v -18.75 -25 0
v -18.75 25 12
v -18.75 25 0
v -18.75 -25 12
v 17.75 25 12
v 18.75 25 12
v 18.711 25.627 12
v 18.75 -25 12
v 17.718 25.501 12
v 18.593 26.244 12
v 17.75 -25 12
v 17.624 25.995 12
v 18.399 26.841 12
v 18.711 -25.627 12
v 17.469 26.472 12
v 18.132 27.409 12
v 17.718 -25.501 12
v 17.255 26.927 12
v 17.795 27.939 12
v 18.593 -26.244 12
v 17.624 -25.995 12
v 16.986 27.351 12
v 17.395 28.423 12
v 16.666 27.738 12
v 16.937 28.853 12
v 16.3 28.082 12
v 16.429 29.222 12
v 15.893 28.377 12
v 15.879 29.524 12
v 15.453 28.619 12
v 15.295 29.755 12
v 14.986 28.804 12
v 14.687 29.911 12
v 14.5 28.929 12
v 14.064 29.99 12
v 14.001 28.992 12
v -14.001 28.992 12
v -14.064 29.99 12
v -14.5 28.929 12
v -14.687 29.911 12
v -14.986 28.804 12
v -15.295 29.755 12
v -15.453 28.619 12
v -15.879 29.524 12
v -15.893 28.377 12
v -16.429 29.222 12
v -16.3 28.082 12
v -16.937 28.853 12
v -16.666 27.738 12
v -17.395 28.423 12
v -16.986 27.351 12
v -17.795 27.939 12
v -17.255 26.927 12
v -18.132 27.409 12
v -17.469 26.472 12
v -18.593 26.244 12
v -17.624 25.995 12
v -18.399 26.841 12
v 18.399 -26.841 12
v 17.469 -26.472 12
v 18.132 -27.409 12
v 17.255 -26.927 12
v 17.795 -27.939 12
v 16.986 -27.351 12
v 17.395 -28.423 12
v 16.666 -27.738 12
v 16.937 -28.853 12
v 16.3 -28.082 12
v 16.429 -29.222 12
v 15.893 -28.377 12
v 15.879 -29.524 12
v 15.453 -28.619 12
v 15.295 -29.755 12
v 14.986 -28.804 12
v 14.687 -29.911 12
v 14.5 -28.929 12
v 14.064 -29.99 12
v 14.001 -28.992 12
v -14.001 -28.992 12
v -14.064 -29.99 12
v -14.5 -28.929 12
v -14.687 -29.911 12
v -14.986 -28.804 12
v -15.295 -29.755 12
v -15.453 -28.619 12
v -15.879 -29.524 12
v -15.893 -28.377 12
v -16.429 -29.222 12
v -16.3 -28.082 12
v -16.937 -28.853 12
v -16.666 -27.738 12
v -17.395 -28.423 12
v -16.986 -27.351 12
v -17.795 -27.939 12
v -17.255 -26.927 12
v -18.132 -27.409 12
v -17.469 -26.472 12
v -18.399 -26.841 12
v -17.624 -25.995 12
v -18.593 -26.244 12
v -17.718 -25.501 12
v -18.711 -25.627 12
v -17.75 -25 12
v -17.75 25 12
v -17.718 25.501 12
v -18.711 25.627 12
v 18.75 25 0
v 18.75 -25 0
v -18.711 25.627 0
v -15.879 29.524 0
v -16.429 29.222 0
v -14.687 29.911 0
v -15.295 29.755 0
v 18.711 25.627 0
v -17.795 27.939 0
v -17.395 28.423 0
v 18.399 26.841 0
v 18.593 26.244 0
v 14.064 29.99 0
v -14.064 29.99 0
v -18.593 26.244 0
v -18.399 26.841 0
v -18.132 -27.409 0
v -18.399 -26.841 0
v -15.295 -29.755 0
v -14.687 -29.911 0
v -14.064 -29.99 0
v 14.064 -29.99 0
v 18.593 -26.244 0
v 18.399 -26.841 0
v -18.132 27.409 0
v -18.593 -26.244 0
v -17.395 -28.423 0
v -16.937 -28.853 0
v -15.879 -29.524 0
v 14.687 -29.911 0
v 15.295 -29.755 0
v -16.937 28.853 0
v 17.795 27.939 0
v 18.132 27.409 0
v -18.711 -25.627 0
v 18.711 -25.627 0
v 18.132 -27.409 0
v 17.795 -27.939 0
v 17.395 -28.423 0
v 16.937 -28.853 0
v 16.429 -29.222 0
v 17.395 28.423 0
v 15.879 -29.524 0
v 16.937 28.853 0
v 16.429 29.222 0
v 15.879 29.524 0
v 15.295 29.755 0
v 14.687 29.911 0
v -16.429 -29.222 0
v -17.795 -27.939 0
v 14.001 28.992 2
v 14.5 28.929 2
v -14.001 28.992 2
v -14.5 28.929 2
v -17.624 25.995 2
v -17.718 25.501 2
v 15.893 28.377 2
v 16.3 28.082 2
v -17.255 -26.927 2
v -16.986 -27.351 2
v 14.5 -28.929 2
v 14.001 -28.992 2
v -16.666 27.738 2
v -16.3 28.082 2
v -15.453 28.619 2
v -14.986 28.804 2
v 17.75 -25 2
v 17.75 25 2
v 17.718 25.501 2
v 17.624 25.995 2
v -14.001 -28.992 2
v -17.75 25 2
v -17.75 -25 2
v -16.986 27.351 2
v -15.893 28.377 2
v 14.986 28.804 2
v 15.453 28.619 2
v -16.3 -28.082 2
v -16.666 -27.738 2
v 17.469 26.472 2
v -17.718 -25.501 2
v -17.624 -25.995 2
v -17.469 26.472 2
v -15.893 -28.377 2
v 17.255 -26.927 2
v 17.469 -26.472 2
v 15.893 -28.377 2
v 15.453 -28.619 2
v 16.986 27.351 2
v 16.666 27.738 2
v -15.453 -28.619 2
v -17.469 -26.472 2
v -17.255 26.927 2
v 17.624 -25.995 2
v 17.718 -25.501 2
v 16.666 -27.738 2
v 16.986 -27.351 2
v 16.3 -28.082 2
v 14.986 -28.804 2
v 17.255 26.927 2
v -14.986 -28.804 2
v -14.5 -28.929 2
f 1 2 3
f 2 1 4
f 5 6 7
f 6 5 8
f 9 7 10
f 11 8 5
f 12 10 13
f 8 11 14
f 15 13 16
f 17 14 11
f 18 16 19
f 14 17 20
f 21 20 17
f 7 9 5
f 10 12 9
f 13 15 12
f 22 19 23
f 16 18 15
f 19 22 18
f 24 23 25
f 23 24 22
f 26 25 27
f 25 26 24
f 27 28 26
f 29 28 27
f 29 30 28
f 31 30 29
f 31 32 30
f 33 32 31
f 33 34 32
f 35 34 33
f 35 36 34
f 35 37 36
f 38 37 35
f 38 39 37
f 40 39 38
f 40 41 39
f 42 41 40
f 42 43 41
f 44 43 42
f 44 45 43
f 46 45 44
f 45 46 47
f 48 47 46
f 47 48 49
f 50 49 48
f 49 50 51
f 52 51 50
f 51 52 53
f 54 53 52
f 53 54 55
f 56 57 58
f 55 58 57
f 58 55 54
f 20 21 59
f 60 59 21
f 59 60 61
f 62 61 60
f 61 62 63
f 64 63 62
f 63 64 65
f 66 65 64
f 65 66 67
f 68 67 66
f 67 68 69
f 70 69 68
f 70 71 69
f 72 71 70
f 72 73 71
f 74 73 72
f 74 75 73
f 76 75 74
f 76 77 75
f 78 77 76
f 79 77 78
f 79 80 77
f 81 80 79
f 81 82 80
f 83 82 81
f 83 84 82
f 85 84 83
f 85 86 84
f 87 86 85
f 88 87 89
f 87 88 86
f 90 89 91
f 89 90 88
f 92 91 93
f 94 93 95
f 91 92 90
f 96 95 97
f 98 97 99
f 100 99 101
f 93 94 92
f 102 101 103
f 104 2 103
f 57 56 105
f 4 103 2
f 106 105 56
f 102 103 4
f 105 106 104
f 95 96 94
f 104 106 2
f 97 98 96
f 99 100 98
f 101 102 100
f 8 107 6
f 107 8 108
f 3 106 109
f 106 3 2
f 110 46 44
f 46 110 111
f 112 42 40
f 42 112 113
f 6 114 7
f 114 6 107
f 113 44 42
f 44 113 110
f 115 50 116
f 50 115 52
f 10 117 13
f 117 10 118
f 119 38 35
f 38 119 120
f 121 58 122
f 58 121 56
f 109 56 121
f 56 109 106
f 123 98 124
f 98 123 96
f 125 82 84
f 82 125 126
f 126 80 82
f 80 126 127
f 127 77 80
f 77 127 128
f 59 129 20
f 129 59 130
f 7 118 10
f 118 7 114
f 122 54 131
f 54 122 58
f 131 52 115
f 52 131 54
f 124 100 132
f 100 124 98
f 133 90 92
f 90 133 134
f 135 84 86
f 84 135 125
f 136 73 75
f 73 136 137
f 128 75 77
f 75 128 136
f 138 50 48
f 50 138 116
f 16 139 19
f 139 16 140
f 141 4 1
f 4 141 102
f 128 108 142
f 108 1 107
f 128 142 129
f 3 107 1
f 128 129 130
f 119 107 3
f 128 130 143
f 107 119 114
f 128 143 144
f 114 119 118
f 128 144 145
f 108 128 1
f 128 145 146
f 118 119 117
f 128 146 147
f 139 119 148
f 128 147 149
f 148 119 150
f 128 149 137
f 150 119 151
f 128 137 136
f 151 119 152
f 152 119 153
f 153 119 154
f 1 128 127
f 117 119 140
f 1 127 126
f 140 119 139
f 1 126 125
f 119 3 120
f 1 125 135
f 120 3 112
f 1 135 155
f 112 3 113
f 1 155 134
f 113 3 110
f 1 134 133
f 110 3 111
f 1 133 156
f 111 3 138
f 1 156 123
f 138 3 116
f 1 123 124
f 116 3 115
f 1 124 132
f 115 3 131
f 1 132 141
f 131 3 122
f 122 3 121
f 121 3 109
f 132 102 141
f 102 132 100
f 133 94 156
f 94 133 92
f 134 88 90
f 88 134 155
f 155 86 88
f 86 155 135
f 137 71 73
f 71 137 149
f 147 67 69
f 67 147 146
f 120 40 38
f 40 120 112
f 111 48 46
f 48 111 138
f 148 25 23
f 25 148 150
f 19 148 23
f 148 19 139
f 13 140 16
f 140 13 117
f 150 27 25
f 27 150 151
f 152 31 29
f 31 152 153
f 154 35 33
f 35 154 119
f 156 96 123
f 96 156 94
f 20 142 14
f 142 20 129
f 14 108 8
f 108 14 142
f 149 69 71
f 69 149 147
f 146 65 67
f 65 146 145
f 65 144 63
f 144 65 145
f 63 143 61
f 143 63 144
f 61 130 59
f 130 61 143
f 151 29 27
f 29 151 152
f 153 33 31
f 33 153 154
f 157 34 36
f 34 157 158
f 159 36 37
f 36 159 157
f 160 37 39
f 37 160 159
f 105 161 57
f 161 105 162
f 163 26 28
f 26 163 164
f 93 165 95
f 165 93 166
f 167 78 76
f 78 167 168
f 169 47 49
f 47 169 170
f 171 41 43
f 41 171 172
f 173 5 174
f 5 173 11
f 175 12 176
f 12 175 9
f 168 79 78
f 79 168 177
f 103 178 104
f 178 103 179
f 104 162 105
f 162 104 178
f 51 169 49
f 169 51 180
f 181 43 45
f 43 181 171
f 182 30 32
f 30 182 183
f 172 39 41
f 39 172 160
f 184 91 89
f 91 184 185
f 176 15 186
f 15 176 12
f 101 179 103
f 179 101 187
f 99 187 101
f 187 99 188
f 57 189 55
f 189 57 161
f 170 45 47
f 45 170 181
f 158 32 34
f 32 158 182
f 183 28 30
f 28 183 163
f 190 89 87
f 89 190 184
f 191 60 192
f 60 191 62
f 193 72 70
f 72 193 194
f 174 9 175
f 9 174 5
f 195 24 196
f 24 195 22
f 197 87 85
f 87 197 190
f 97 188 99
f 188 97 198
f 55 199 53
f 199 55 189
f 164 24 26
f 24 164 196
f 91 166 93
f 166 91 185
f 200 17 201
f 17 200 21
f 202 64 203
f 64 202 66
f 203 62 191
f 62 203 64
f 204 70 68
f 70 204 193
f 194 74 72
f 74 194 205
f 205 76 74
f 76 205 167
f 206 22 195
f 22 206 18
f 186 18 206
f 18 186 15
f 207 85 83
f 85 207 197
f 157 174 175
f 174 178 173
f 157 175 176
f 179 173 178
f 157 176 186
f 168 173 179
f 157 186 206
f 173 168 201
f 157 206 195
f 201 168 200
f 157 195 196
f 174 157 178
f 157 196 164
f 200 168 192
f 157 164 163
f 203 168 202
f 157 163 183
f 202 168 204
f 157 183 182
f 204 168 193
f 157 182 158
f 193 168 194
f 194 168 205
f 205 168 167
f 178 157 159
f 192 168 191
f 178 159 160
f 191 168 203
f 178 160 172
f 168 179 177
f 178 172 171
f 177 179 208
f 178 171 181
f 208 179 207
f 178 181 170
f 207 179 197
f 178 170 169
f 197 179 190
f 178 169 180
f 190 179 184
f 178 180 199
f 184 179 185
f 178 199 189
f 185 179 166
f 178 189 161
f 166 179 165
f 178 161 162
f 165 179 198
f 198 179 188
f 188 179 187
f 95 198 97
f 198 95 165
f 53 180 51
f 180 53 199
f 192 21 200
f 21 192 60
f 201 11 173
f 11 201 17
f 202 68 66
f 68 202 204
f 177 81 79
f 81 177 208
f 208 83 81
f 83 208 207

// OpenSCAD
$fn = 50;


difference() {
	union() {
		hull() {
			translate(v = [-13.7500000000, 25.0000000000, 0]) {
				cylinder(h = 12, r = 5);
			}
			translate(v = [13.7500000000, 25.0000000000, 0]) {
				cylinder(h = 12, r = 5);
			}
			translate(v = [-13.7500000000, -25.0000000000, 0]) {
				cylinder(h = 12, r = 5);
			}
			translate(v = [13.7500000000, -25.0000000000, 0]) {
				cylinder(h = 12, r = 5);
			}
		}
	}
	union() {
		translate(v = [0, 0, 2]) {
			hull() {
				translate(v = [-13.7500000000, 25.0000000000, 0]) {
					cylinder(h = 10, r = 4);
				}
				translate(v = [13.7500000000, 25.0000000000, 0]) {
					cylinder(h = 10, r = 4);
				}
				translate(v = [-13.7500000000, -25.0000000000, 0]) {
					cylinder(h = 10, r = 4);
				}
				translate(v = [13.7500000000, -25.0000000000, 0]) {
					cylinder(h = 10, r = 4);
				}
			}
		}
	}
}
